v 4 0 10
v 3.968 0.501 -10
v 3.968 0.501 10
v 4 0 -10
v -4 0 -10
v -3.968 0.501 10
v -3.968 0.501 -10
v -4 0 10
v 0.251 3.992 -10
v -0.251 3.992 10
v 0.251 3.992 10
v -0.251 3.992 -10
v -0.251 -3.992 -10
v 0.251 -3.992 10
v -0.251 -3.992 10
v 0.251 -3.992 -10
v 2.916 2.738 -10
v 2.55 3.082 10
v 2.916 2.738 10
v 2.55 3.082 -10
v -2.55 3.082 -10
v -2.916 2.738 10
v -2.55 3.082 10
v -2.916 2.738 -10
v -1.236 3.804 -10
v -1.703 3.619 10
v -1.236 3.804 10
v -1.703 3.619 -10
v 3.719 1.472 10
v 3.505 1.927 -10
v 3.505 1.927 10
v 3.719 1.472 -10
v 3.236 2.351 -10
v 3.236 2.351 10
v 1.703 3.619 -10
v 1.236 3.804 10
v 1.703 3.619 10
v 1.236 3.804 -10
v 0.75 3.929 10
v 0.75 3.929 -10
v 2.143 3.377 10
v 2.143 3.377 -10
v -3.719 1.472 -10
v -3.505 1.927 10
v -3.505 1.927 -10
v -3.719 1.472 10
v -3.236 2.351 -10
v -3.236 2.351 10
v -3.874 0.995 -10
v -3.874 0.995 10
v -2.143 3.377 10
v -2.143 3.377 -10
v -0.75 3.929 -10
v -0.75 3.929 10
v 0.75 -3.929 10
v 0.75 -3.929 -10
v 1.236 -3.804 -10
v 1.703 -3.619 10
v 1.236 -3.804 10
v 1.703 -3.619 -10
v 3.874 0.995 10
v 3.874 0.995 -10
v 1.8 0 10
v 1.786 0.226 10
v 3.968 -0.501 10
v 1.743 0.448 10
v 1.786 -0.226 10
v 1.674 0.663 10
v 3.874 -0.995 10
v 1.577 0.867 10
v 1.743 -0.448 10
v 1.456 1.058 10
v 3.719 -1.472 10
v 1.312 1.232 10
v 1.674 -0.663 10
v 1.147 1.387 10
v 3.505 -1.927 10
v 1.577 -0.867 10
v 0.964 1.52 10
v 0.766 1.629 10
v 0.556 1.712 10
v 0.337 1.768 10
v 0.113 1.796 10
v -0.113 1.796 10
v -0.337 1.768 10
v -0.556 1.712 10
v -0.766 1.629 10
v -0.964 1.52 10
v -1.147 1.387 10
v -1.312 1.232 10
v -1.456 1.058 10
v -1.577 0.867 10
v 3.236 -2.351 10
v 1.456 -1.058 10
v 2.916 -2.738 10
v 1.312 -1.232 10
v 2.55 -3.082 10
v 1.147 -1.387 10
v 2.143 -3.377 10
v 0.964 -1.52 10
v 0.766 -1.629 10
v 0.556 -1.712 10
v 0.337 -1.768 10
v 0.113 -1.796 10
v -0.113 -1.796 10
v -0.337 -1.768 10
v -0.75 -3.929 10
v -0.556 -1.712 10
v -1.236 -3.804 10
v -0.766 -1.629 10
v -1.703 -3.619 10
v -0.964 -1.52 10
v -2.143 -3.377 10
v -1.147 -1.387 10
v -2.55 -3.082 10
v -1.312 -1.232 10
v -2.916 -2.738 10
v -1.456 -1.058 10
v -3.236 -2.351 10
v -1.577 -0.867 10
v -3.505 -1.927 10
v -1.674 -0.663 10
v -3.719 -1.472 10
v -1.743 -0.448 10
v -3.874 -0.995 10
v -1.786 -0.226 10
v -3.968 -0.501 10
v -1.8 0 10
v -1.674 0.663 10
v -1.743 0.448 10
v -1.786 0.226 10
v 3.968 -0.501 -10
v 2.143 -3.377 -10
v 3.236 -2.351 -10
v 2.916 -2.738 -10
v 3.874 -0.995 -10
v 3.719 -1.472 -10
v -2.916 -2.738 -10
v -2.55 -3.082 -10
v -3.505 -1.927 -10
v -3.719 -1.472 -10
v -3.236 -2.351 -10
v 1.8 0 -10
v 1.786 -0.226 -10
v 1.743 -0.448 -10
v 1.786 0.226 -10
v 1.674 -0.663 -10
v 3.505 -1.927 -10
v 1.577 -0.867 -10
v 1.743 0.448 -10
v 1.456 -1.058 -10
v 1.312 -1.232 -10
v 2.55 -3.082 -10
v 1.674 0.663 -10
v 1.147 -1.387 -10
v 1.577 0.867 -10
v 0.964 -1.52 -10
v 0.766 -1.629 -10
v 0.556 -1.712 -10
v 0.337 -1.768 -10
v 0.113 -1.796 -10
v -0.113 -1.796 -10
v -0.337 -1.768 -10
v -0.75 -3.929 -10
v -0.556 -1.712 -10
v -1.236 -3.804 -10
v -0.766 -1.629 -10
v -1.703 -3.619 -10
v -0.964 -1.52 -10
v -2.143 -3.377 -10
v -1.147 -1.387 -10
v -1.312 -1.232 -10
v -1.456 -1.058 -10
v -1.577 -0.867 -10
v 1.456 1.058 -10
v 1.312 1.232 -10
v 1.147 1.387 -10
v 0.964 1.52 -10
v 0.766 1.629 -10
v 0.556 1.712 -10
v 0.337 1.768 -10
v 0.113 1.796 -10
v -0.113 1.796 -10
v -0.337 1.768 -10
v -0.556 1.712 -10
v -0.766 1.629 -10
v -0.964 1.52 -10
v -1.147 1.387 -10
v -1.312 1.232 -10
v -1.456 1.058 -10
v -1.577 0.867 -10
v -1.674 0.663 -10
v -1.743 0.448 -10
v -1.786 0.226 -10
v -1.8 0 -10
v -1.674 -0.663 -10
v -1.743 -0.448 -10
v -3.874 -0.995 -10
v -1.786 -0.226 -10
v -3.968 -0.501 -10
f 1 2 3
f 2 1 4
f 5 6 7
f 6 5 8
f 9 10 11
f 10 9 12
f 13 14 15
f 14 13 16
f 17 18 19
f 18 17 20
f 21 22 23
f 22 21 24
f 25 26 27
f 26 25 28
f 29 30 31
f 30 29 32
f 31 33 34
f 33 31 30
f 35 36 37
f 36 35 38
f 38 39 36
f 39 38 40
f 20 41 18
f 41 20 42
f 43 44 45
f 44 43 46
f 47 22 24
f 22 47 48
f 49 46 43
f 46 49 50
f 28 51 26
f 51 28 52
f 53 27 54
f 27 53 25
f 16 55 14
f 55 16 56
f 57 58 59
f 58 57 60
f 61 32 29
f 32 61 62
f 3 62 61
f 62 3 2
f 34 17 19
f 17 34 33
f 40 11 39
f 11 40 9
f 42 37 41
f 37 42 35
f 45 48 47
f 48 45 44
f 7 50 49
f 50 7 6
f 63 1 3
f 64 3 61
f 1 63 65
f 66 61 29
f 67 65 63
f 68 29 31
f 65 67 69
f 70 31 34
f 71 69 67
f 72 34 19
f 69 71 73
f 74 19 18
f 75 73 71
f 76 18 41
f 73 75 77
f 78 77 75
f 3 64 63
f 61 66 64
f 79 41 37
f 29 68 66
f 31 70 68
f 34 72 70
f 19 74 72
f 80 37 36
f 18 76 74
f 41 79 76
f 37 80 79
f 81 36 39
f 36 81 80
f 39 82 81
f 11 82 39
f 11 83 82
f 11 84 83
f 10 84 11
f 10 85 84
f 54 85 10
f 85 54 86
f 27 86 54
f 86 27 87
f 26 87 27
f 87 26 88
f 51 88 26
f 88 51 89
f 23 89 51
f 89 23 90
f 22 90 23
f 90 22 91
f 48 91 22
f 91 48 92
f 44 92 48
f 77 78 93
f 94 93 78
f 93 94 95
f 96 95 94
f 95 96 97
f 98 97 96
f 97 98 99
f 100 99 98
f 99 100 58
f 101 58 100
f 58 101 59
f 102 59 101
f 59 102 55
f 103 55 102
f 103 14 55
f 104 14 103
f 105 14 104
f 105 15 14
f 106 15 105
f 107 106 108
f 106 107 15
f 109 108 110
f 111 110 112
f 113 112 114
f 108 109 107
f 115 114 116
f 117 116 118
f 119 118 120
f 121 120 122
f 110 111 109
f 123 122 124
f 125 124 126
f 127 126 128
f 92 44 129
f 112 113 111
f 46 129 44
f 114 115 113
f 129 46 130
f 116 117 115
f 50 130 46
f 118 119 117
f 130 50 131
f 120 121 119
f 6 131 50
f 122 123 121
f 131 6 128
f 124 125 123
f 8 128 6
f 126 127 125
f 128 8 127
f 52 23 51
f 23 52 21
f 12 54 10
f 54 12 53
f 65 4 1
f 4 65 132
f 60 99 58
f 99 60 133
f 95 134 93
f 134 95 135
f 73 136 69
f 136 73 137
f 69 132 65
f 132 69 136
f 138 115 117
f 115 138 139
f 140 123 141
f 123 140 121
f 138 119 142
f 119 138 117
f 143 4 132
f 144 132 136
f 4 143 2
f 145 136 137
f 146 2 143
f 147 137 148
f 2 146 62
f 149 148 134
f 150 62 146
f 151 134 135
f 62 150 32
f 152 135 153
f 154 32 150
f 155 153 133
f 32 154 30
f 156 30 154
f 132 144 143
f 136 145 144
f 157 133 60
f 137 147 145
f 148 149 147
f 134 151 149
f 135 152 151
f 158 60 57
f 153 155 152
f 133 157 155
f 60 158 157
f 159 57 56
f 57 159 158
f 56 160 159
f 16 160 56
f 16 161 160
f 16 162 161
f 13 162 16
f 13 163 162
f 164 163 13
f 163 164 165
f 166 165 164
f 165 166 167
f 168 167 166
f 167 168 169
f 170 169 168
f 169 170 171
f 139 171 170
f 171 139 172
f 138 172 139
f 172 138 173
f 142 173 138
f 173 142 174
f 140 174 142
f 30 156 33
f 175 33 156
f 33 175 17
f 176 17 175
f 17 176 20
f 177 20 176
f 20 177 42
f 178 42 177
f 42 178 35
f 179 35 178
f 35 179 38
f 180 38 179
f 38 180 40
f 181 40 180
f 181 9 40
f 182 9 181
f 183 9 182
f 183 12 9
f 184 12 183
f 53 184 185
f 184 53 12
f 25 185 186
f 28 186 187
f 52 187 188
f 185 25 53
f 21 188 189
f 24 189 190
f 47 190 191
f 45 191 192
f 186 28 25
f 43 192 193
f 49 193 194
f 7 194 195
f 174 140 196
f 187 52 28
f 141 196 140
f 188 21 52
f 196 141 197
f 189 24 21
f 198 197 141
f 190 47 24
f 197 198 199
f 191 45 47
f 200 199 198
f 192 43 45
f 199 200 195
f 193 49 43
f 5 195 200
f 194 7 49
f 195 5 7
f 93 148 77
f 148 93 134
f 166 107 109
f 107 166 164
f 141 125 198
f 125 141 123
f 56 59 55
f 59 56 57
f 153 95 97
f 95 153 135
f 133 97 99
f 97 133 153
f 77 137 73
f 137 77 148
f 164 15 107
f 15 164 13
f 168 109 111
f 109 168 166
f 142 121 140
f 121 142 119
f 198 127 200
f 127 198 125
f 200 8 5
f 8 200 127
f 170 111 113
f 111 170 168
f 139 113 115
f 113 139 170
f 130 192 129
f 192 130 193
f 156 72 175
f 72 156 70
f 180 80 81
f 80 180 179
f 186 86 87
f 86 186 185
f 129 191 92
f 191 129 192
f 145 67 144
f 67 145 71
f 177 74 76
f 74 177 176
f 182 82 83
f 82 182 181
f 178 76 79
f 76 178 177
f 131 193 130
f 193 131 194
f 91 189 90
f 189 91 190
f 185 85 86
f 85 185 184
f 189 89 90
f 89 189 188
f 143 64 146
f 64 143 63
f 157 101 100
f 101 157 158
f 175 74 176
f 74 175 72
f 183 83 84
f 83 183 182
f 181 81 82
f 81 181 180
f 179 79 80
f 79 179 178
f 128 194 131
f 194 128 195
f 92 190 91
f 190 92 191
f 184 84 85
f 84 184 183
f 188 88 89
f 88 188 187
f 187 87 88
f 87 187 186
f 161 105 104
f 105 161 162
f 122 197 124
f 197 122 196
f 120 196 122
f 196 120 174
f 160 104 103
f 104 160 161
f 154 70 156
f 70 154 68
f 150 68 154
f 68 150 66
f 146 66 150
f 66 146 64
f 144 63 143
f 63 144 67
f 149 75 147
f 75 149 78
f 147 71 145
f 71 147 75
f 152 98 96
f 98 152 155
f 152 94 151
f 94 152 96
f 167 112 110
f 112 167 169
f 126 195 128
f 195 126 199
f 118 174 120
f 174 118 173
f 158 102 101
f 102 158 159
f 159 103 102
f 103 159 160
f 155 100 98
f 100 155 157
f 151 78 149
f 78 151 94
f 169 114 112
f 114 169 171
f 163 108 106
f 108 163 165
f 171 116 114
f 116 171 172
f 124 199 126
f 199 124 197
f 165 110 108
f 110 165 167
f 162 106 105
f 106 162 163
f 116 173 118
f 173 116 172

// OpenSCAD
$fn = 50;


difference() {
	union() {
		translate(v = [0, 0, -10.0000000000]) {
			cylinder(h = 20, r = 4.0000000000);
		}
	}
	union() {
		translate(v = [0, 0, -100.0000000000]) {
			cylinder(h = 200, r = 1.8000000000);
		}
	}
}
